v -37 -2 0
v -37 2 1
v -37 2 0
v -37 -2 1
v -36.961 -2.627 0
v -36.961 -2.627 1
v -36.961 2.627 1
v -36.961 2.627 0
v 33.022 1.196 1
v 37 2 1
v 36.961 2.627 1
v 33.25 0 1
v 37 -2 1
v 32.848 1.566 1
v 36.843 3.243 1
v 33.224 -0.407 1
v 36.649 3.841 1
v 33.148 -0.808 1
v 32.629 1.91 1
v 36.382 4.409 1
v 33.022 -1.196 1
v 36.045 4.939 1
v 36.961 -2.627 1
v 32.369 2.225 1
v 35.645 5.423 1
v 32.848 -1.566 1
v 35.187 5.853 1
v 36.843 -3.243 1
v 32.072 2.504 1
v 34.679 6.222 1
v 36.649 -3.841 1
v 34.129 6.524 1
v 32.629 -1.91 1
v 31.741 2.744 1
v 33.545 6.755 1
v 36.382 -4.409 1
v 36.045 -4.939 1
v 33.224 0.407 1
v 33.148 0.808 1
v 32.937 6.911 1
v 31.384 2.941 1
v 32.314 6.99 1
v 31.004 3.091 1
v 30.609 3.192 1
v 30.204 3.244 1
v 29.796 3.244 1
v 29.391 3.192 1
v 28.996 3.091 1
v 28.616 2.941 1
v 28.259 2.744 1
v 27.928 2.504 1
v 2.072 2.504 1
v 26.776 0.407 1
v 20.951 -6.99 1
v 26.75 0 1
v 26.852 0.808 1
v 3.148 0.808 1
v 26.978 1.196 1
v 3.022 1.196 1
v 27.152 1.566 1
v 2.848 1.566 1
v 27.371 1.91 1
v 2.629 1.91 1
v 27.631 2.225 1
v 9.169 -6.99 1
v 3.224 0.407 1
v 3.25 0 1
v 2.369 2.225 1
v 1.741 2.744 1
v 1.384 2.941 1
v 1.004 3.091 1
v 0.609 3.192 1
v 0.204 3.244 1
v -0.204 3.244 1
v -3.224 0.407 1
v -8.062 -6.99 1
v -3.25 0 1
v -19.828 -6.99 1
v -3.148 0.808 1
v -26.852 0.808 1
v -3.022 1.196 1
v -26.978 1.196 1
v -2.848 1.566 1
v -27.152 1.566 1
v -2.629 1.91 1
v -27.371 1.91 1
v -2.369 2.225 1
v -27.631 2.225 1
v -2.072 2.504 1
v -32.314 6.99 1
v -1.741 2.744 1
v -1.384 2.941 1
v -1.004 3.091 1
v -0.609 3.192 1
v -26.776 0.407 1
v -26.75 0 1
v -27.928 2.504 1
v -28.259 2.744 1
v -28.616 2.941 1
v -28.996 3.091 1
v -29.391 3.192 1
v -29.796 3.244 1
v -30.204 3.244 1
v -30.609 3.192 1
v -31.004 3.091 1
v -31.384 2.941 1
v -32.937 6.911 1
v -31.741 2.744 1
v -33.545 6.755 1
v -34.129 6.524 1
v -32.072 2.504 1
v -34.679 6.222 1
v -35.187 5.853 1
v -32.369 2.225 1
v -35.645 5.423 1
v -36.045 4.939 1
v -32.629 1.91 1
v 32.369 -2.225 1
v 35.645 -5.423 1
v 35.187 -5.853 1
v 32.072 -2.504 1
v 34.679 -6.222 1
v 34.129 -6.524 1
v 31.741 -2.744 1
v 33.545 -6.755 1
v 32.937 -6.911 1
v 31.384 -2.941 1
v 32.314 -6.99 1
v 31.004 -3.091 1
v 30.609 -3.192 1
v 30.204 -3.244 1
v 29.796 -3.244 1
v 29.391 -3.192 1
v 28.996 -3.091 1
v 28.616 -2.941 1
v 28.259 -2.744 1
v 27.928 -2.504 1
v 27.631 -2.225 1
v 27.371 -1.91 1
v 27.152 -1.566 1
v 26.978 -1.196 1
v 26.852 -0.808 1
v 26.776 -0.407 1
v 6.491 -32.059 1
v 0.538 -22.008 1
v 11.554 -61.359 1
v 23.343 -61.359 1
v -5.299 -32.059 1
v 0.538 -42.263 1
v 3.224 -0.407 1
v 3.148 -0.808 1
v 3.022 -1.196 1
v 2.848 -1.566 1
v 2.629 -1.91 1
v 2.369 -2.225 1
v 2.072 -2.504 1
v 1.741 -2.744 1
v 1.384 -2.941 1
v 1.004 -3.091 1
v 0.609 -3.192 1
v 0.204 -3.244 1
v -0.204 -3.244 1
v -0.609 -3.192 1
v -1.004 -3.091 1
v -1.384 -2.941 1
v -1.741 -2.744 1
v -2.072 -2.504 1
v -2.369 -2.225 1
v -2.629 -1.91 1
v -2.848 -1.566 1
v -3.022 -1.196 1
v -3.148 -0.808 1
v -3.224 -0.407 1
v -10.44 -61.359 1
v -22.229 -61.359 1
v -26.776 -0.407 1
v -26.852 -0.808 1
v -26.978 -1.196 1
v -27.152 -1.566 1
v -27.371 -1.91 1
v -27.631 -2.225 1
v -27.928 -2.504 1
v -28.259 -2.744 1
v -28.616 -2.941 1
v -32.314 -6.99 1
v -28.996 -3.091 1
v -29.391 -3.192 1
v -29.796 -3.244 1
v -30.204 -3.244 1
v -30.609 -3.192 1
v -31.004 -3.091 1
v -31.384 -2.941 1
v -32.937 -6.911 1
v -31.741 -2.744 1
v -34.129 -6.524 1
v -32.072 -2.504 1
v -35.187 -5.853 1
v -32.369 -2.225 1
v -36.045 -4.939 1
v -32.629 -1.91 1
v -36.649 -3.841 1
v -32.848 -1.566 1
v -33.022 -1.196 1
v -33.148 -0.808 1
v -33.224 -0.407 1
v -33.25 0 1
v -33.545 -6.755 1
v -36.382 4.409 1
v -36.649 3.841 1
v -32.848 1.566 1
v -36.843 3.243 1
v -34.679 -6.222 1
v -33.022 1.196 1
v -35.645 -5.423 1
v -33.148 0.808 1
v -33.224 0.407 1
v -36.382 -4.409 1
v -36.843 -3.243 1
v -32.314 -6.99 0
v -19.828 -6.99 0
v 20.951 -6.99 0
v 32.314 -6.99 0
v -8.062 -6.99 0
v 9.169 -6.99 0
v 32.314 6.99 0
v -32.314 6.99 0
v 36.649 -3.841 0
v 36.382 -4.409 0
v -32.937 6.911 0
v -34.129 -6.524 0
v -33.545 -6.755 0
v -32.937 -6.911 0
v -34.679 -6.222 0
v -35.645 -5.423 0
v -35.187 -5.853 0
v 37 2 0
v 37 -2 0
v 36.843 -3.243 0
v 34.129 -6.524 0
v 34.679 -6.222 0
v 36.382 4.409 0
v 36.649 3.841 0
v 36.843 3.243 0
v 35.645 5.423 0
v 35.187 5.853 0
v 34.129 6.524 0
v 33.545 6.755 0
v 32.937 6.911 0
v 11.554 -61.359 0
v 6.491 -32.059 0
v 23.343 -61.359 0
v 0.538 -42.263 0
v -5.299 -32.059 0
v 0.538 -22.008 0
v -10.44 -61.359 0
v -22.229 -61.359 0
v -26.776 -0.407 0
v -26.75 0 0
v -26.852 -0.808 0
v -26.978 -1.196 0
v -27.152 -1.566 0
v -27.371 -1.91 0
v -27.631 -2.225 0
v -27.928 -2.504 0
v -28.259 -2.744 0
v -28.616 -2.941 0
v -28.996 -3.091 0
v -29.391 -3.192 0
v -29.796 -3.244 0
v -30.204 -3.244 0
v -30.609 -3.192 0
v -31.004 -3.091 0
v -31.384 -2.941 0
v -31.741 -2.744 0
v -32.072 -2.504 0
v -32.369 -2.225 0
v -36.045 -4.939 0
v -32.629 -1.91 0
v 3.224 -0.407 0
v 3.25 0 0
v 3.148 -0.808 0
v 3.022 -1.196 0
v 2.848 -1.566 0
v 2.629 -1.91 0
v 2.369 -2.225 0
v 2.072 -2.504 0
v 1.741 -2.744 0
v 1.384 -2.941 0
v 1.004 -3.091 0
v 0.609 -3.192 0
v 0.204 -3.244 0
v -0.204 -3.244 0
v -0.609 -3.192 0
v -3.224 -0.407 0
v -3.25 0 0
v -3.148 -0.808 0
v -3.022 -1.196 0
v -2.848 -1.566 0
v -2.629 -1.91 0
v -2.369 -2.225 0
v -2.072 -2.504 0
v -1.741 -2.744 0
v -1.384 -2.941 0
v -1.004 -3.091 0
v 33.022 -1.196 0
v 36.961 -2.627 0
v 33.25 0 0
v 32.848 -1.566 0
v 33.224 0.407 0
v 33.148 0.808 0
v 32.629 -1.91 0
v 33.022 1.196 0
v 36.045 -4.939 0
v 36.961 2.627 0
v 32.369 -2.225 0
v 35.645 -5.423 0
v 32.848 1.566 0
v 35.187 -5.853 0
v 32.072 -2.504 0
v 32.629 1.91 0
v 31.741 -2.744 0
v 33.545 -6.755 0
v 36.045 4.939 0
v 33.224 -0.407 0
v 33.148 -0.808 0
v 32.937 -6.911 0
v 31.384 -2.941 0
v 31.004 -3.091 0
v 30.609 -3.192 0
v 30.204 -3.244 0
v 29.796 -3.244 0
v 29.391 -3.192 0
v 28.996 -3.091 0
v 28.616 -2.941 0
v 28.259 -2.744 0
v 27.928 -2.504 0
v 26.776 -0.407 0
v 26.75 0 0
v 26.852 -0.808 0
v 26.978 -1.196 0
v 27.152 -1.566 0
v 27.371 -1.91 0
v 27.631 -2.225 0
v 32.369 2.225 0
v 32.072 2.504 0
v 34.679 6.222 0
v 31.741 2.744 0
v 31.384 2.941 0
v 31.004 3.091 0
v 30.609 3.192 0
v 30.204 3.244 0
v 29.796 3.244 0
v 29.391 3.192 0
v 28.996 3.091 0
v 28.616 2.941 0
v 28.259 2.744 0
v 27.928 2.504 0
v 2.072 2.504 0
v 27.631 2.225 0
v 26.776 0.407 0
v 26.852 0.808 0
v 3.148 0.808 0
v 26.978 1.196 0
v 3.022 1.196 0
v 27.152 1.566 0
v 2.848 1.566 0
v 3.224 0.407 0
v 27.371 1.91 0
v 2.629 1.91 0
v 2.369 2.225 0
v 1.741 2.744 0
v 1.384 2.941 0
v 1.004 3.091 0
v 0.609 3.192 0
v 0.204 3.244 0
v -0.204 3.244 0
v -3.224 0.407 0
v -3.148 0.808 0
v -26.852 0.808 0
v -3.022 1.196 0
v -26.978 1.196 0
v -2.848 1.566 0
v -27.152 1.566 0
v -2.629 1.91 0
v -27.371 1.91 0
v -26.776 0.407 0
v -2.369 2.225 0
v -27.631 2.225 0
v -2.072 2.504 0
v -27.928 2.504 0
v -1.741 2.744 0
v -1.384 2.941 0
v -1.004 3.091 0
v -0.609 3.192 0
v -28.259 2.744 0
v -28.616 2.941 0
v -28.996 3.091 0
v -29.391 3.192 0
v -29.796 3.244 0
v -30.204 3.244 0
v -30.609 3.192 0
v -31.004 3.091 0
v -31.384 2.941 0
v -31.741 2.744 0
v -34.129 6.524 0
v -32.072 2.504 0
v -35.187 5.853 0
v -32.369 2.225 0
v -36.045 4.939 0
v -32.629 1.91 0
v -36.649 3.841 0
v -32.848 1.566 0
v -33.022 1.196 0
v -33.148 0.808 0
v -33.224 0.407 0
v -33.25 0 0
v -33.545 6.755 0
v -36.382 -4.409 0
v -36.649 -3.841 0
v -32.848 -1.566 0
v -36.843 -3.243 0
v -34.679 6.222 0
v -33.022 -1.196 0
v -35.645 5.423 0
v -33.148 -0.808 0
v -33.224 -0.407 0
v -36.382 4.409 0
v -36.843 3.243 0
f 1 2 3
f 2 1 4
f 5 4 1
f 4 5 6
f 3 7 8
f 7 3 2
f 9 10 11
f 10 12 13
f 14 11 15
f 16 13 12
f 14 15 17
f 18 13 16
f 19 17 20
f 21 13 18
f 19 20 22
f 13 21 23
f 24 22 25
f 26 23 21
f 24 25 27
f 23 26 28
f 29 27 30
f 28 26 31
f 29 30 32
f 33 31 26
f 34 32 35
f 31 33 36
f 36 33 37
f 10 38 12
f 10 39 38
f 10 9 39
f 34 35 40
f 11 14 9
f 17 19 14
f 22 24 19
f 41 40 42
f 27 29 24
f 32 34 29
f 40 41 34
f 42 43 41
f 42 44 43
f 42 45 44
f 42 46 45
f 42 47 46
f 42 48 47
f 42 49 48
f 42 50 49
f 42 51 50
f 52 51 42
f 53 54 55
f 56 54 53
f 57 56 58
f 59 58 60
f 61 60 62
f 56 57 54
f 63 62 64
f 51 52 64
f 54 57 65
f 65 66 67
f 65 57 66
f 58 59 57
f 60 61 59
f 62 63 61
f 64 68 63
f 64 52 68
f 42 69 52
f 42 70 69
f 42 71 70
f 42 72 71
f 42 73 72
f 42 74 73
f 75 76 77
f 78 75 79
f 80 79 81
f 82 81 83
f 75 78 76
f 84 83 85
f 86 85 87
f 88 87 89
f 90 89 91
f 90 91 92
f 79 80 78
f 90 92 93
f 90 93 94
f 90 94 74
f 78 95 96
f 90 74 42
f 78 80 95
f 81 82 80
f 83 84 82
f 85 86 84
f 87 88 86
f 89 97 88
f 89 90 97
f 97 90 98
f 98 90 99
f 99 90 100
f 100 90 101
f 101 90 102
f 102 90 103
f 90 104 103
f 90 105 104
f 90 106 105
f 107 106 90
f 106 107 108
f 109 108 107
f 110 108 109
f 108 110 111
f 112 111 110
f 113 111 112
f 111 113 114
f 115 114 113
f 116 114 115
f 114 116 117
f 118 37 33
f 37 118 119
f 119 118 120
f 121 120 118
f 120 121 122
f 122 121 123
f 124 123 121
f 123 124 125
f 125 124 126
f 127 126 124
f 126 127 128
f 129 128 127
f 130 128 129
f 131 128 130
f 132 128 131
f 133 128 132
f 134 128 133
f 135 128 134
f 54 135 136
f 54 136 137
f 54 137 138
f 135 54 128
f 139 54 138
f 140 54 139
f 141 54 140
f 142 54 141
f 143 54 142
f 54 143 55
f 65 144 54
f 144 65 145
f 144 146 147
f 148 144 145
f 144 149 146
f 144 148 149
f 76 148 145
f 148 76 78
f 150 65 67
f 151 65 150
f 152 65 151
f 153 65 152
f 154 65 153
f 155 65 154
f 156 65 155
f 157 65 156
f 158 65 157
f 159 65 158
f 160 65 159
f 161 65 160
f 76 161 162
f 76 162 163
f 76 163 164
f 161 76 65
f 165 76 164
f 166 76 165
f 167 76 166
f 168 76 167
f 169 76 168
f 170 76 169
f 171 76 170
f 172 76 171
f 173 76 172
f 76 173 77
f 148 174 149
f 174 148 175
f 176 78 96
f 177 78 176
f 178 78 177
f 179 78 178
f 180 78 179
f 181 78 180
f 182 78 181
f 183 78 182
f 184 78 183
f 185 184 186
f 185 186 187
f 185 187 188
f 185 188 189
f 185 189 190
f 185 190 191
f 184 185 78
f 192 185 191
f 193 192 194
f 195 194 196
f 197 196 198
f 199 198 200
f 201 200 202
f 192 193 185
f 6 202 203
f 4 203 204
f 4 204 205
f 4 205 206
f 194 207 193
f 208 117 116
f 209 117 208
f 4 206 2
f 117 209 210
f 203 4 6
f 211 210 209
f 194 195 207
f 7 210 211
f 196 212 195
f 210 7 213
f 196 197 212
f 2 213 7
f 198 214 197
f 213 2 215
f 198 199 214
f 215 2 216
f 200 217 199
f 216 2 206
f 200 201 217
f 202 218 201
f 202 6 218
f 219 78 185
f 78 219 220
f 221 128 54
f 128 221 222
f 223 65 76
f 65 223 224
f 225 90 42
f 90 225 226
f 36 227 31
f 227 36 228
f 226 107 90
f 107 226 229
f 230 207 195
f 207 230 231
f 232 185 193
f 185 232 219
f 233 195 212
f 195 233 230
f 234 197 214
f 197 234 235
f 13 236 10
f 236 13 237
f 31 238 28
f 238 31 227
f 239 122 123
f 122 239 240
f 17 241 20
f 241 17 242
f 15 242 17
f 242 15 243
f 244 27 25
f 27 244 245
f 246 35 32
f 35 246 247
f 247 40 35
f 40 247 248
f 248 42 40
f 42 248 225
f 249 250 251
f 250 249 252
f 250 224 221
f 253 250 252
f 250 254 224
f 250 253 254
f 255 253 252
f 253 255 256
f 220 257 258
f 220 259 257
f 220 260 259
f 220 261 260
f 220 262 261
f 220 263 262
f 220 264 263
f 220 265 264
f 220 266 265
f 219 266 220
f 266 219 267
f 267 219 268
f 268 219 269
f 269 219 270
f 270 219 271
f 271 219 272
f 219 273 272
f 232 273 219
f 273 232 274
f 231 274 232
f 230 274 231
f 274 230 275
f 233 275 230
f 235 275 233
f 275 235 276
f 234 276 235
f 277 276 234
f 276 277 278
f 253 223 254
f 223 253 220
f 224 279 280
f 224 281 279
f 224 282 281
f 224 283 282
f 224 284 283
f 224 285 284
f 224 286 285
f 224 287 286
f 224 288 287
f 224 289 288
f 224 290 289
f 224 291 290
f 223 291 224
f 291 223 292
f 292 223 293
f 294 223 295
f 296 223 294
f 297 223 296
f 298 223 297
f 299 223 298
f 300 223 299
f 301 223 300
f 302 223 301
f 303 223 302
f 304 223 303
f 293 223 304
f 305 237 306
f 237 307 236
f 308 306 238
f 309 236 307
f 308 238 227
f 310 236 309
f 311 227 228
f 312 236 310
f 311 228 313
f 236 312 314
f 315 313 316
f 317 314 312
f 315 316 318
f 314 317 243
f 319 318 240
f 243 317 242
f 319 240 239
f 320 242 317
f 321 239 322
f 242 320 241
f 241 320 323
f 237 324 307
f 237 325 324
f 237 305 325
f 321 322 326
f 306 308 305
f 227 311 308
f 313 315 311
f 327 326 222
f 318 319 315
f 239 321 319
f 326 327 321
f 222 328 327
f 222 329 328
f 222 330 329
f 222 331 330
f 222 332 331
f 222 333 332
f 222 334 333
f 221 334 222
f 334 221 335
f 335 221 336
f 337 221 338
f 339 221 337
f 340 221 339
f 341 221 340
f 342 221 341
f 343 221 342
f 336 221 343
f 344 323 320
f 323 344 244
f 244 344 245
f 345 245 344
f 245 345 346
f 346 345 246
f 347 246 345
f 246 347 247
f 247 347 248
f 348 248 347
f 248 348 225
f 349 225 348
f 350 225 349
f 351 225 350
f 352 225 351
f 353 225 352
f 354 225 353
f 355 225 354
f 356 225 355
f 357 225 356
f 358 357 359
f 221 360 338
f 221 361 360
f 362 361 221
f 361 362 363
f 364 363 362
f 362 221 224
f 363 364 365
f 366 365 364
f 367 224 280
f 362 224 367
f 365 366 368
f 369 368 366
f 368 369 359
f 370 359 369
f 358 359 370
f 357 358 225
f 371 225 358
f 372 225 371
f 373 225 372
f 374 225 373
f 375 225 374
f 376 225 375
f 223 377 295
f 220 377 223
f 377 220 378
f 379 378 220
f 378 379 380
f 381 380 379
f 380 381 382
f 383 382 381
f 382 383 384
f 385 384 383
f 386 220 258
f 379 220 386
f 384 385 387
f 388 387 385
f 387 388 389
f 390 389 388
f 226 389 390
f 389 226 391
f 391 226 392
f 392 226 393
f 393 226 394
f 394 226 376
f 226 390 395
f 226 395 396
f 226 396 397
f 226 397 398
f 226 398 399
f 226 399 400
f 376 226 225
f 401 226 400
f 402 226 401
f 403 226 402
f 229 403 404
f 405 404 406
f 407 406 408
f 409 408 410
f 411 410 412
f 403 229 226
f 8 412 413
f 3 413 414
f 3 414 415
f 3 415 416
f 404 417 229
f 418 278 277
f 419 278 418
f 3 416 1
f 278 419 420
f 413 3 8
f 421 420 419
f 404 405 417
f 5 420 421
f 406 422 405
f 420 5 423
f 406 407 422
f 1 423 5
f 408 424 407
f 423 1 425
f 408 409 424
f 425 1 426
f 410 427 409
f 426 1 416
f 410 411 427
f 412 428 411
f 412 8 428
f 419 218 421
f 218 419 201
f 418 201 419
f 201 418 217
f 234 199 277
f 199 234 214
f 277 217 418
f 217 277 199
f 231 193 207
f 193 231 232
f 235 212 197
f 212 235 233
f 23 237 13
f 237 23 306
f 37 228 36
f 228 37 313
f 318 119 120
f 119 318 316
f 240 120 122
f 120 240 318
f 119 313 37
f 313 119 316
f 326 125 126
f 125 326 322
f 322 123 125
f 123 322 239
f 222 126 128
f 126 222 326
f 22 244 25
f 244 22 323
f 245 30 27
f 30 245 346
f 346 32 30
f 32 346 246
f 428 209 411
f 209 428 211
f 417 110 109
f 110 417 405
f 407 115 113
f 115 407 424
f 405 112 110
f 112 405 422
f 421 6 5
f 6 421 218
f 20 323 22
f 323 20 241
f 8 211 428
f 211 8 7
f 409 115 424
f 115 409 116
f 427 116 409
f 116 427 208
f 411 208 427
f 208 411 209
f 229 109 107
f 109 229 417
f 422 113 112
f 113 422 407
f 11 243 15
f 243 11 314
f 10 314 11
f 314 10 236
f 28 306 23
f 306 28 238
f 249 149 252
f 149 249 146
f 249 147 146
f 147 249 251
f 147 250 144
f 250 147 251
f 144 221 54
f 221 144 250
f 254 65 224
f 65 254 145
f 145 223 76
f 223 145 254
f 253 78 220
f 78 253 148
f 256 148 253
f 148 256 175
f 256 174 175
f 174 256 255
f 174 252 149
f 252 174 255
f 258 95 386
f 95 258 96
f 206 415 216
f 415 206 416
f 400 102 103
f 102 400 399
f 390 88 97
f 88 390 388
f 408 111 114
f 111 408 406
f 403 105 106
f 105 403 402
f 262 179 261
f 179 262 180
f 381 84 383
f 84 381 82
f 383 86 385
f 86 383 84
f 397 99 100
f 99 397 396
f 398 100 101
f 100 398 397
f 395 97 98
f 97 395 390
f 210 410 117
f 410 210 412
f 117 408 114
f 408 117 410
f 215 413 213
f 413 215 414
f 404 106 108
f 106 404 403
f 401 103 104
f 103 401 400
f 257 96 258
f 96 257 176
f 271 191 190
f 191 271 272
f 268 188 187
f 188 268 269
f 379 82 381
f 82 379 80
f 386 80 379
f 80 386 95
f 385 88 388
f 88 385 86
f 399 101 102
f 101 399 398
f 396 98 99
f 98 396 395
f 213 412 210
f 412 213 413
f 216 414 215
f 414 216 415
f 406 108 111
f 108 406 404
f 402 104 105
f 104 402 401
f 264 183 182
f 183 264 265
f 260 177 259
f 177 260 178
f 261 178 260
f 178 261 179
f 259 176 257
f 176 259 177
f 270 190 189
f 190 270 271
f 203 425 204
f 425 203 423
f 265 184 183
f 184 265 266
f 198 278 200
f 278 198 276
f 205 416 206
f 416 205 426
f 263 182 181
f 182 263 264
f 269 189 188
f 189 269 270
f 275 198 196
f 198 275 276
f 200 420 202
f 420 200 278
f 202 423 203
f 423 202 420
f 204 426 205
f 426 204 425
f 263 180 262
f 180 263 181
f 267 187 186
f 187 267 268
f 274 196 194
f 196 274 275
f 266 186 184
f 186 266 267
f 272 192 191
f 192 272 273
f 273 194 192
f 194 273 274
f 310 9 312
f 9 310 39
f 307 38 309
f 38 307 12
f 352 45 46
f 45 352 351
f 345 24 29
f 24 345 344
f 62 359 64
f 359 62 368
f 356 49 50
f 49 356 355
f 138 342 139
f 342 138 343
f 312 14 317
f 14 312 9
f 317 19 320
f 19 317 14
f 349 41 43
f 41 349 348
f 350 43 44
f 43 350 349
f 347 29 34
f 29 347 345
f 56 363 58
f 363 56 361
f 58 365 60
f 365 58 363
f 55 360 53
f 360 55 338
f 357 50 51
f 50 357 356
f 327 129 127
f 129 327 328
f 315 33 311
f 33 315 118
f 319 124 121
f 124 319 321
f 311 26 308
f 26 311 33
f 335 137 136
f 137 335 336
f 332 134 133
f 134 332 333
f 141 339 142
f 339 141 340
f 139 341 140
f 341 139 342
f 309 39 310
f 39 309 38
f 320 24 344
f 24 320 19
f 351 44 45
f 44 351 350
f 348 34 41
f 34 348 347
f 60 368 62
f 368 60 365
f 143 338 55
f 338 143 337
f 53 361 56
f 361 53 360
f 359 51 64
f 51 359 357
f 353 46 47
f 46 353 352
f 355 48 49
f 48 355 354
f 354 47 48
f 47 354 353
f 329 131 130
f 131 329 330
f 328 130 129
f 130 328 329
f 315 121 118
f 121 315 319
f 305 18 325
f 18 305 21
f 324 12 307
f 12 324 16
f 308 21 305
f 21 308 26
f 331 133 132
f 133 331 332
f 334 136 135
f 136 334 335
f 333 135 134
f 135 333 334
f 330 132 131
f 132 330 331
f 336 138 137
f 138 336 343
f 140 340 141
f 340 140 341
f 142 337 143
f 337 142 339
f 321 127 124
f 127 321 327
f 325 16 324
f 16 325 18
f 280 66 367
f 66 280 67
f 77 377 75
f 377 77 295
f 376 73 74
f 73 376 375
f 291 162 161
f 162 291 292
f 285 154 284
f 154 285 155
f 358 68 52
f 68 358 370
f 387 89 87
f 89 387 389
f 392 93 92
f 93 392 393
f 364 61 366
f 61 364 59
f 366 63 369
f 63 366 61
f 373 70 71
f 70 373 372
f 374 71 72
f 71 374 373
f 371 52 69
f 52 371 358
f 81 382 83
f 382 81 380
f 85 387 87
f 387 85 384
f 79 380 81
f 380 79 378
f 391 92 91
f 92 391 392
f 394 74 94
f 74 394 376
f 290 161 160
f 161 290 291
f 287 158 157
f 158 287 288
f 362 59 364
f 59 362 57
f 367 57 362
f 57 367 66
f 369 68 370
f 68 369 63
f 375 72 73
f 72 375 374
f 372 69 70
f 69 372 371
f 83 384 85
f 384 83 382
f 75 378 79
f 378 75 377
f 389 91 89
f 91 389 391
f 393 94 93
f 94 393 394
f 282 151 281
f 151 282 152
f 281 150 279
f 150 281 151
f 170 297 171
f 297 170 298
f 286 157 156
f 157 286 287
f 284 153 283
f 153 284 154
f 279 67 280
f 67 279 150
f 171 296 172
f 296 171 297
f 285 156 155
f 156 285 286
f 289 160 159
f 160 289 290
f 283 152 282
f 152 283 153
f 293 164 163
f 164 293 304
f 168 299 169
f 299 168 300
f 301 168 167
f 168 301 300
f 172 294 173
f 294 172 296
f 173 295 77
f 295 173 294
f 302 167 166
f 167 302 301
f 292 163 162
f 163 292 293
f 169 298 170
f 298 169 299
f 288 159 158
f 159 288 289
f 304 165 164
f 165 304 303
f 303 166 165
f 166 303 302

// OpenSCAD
$fn = 50;


difference() {
	union() {
		translate(v = [0, 0, 0]) {
			rotate(a = [0, 0, 0]) {
				hull() {
					translate(v = [-32.0000000000, 2.0000000000, 0]) {
						rotate(a = [0, 0, 0]) {
							translate(v = [0, 0, 0]) {
								rotate(a = [0, 0, 0]) {
									cylinder(h = 1, r = 5);
								}
							}
						}
					}
					translate(v = [32.0000000000, 2.0000000000, 0]) {
						rotate(a = [0, 0, 0]) {
							translate(v = [0, 0, 0]) {
								rotate(a = [0, 0, 0]) {
									cylinder(h = 1, r = 5);
								}
							}
						}
					}
					translate(v = [-32.0000000000, -2.0000000000, 0]) {
						rotate(a = [0, 0, 0]) {
							translate(v = [0, 0, 0]) {
								rotate(a = [0, 0, 0]) {
									cylinder(h = 1, r = 5);
								}
							}
						}
					}
					translate(v = [32.0000000000, -2.0000000000, 0]) {
						rotate(a = [0, 0, 0]) {
							translate(v = [0, 0, 0]) {
								rotate(a = [0, 0, 0]) {
									cylinder(h = 1, r = 5);
								}
							}
						}
					}
				}
			}
		}
		translate(v = [0, -5, 0]) {
			rotate(a = [0, 0, 0]) {
				linear_extrude(height = 1) {
					text(font = "DejaVu Sans Mono:style=Bold", halign = "center", size = 57.0000000000, text = "X", valign = "top");
				}
			}
		}
	}
	union() {
		translate(v = [-30.0000000000, 0.0000000000, -125.0000000000]) {
			rotate(a = [0, 0, 0]) {
				cylinder(h = 250, r = 3.2500000000);
			}
		}
		translate(v = [30.0000000000, 0.0000000000, -125.0000000000]) {
			rotate(a = [0, 0, 0]) {
				cylinder(h = 250, r = 3.2500000000);
			}
		}
		translate(v = [30.0000000000, 0.0000000000, -125.0000000000]) {
			rotate(a = [0, 0, 0]) {
				cylinder(h = 250, r = 3.2500000000);
			}
		}
		translate(v = [0, 0, -125.0000000000]) {
			rotate(a = [0, 0, 0]) {
				cylinder(h = 250, r = 3.2500000000);
			}
		}
	}
}
